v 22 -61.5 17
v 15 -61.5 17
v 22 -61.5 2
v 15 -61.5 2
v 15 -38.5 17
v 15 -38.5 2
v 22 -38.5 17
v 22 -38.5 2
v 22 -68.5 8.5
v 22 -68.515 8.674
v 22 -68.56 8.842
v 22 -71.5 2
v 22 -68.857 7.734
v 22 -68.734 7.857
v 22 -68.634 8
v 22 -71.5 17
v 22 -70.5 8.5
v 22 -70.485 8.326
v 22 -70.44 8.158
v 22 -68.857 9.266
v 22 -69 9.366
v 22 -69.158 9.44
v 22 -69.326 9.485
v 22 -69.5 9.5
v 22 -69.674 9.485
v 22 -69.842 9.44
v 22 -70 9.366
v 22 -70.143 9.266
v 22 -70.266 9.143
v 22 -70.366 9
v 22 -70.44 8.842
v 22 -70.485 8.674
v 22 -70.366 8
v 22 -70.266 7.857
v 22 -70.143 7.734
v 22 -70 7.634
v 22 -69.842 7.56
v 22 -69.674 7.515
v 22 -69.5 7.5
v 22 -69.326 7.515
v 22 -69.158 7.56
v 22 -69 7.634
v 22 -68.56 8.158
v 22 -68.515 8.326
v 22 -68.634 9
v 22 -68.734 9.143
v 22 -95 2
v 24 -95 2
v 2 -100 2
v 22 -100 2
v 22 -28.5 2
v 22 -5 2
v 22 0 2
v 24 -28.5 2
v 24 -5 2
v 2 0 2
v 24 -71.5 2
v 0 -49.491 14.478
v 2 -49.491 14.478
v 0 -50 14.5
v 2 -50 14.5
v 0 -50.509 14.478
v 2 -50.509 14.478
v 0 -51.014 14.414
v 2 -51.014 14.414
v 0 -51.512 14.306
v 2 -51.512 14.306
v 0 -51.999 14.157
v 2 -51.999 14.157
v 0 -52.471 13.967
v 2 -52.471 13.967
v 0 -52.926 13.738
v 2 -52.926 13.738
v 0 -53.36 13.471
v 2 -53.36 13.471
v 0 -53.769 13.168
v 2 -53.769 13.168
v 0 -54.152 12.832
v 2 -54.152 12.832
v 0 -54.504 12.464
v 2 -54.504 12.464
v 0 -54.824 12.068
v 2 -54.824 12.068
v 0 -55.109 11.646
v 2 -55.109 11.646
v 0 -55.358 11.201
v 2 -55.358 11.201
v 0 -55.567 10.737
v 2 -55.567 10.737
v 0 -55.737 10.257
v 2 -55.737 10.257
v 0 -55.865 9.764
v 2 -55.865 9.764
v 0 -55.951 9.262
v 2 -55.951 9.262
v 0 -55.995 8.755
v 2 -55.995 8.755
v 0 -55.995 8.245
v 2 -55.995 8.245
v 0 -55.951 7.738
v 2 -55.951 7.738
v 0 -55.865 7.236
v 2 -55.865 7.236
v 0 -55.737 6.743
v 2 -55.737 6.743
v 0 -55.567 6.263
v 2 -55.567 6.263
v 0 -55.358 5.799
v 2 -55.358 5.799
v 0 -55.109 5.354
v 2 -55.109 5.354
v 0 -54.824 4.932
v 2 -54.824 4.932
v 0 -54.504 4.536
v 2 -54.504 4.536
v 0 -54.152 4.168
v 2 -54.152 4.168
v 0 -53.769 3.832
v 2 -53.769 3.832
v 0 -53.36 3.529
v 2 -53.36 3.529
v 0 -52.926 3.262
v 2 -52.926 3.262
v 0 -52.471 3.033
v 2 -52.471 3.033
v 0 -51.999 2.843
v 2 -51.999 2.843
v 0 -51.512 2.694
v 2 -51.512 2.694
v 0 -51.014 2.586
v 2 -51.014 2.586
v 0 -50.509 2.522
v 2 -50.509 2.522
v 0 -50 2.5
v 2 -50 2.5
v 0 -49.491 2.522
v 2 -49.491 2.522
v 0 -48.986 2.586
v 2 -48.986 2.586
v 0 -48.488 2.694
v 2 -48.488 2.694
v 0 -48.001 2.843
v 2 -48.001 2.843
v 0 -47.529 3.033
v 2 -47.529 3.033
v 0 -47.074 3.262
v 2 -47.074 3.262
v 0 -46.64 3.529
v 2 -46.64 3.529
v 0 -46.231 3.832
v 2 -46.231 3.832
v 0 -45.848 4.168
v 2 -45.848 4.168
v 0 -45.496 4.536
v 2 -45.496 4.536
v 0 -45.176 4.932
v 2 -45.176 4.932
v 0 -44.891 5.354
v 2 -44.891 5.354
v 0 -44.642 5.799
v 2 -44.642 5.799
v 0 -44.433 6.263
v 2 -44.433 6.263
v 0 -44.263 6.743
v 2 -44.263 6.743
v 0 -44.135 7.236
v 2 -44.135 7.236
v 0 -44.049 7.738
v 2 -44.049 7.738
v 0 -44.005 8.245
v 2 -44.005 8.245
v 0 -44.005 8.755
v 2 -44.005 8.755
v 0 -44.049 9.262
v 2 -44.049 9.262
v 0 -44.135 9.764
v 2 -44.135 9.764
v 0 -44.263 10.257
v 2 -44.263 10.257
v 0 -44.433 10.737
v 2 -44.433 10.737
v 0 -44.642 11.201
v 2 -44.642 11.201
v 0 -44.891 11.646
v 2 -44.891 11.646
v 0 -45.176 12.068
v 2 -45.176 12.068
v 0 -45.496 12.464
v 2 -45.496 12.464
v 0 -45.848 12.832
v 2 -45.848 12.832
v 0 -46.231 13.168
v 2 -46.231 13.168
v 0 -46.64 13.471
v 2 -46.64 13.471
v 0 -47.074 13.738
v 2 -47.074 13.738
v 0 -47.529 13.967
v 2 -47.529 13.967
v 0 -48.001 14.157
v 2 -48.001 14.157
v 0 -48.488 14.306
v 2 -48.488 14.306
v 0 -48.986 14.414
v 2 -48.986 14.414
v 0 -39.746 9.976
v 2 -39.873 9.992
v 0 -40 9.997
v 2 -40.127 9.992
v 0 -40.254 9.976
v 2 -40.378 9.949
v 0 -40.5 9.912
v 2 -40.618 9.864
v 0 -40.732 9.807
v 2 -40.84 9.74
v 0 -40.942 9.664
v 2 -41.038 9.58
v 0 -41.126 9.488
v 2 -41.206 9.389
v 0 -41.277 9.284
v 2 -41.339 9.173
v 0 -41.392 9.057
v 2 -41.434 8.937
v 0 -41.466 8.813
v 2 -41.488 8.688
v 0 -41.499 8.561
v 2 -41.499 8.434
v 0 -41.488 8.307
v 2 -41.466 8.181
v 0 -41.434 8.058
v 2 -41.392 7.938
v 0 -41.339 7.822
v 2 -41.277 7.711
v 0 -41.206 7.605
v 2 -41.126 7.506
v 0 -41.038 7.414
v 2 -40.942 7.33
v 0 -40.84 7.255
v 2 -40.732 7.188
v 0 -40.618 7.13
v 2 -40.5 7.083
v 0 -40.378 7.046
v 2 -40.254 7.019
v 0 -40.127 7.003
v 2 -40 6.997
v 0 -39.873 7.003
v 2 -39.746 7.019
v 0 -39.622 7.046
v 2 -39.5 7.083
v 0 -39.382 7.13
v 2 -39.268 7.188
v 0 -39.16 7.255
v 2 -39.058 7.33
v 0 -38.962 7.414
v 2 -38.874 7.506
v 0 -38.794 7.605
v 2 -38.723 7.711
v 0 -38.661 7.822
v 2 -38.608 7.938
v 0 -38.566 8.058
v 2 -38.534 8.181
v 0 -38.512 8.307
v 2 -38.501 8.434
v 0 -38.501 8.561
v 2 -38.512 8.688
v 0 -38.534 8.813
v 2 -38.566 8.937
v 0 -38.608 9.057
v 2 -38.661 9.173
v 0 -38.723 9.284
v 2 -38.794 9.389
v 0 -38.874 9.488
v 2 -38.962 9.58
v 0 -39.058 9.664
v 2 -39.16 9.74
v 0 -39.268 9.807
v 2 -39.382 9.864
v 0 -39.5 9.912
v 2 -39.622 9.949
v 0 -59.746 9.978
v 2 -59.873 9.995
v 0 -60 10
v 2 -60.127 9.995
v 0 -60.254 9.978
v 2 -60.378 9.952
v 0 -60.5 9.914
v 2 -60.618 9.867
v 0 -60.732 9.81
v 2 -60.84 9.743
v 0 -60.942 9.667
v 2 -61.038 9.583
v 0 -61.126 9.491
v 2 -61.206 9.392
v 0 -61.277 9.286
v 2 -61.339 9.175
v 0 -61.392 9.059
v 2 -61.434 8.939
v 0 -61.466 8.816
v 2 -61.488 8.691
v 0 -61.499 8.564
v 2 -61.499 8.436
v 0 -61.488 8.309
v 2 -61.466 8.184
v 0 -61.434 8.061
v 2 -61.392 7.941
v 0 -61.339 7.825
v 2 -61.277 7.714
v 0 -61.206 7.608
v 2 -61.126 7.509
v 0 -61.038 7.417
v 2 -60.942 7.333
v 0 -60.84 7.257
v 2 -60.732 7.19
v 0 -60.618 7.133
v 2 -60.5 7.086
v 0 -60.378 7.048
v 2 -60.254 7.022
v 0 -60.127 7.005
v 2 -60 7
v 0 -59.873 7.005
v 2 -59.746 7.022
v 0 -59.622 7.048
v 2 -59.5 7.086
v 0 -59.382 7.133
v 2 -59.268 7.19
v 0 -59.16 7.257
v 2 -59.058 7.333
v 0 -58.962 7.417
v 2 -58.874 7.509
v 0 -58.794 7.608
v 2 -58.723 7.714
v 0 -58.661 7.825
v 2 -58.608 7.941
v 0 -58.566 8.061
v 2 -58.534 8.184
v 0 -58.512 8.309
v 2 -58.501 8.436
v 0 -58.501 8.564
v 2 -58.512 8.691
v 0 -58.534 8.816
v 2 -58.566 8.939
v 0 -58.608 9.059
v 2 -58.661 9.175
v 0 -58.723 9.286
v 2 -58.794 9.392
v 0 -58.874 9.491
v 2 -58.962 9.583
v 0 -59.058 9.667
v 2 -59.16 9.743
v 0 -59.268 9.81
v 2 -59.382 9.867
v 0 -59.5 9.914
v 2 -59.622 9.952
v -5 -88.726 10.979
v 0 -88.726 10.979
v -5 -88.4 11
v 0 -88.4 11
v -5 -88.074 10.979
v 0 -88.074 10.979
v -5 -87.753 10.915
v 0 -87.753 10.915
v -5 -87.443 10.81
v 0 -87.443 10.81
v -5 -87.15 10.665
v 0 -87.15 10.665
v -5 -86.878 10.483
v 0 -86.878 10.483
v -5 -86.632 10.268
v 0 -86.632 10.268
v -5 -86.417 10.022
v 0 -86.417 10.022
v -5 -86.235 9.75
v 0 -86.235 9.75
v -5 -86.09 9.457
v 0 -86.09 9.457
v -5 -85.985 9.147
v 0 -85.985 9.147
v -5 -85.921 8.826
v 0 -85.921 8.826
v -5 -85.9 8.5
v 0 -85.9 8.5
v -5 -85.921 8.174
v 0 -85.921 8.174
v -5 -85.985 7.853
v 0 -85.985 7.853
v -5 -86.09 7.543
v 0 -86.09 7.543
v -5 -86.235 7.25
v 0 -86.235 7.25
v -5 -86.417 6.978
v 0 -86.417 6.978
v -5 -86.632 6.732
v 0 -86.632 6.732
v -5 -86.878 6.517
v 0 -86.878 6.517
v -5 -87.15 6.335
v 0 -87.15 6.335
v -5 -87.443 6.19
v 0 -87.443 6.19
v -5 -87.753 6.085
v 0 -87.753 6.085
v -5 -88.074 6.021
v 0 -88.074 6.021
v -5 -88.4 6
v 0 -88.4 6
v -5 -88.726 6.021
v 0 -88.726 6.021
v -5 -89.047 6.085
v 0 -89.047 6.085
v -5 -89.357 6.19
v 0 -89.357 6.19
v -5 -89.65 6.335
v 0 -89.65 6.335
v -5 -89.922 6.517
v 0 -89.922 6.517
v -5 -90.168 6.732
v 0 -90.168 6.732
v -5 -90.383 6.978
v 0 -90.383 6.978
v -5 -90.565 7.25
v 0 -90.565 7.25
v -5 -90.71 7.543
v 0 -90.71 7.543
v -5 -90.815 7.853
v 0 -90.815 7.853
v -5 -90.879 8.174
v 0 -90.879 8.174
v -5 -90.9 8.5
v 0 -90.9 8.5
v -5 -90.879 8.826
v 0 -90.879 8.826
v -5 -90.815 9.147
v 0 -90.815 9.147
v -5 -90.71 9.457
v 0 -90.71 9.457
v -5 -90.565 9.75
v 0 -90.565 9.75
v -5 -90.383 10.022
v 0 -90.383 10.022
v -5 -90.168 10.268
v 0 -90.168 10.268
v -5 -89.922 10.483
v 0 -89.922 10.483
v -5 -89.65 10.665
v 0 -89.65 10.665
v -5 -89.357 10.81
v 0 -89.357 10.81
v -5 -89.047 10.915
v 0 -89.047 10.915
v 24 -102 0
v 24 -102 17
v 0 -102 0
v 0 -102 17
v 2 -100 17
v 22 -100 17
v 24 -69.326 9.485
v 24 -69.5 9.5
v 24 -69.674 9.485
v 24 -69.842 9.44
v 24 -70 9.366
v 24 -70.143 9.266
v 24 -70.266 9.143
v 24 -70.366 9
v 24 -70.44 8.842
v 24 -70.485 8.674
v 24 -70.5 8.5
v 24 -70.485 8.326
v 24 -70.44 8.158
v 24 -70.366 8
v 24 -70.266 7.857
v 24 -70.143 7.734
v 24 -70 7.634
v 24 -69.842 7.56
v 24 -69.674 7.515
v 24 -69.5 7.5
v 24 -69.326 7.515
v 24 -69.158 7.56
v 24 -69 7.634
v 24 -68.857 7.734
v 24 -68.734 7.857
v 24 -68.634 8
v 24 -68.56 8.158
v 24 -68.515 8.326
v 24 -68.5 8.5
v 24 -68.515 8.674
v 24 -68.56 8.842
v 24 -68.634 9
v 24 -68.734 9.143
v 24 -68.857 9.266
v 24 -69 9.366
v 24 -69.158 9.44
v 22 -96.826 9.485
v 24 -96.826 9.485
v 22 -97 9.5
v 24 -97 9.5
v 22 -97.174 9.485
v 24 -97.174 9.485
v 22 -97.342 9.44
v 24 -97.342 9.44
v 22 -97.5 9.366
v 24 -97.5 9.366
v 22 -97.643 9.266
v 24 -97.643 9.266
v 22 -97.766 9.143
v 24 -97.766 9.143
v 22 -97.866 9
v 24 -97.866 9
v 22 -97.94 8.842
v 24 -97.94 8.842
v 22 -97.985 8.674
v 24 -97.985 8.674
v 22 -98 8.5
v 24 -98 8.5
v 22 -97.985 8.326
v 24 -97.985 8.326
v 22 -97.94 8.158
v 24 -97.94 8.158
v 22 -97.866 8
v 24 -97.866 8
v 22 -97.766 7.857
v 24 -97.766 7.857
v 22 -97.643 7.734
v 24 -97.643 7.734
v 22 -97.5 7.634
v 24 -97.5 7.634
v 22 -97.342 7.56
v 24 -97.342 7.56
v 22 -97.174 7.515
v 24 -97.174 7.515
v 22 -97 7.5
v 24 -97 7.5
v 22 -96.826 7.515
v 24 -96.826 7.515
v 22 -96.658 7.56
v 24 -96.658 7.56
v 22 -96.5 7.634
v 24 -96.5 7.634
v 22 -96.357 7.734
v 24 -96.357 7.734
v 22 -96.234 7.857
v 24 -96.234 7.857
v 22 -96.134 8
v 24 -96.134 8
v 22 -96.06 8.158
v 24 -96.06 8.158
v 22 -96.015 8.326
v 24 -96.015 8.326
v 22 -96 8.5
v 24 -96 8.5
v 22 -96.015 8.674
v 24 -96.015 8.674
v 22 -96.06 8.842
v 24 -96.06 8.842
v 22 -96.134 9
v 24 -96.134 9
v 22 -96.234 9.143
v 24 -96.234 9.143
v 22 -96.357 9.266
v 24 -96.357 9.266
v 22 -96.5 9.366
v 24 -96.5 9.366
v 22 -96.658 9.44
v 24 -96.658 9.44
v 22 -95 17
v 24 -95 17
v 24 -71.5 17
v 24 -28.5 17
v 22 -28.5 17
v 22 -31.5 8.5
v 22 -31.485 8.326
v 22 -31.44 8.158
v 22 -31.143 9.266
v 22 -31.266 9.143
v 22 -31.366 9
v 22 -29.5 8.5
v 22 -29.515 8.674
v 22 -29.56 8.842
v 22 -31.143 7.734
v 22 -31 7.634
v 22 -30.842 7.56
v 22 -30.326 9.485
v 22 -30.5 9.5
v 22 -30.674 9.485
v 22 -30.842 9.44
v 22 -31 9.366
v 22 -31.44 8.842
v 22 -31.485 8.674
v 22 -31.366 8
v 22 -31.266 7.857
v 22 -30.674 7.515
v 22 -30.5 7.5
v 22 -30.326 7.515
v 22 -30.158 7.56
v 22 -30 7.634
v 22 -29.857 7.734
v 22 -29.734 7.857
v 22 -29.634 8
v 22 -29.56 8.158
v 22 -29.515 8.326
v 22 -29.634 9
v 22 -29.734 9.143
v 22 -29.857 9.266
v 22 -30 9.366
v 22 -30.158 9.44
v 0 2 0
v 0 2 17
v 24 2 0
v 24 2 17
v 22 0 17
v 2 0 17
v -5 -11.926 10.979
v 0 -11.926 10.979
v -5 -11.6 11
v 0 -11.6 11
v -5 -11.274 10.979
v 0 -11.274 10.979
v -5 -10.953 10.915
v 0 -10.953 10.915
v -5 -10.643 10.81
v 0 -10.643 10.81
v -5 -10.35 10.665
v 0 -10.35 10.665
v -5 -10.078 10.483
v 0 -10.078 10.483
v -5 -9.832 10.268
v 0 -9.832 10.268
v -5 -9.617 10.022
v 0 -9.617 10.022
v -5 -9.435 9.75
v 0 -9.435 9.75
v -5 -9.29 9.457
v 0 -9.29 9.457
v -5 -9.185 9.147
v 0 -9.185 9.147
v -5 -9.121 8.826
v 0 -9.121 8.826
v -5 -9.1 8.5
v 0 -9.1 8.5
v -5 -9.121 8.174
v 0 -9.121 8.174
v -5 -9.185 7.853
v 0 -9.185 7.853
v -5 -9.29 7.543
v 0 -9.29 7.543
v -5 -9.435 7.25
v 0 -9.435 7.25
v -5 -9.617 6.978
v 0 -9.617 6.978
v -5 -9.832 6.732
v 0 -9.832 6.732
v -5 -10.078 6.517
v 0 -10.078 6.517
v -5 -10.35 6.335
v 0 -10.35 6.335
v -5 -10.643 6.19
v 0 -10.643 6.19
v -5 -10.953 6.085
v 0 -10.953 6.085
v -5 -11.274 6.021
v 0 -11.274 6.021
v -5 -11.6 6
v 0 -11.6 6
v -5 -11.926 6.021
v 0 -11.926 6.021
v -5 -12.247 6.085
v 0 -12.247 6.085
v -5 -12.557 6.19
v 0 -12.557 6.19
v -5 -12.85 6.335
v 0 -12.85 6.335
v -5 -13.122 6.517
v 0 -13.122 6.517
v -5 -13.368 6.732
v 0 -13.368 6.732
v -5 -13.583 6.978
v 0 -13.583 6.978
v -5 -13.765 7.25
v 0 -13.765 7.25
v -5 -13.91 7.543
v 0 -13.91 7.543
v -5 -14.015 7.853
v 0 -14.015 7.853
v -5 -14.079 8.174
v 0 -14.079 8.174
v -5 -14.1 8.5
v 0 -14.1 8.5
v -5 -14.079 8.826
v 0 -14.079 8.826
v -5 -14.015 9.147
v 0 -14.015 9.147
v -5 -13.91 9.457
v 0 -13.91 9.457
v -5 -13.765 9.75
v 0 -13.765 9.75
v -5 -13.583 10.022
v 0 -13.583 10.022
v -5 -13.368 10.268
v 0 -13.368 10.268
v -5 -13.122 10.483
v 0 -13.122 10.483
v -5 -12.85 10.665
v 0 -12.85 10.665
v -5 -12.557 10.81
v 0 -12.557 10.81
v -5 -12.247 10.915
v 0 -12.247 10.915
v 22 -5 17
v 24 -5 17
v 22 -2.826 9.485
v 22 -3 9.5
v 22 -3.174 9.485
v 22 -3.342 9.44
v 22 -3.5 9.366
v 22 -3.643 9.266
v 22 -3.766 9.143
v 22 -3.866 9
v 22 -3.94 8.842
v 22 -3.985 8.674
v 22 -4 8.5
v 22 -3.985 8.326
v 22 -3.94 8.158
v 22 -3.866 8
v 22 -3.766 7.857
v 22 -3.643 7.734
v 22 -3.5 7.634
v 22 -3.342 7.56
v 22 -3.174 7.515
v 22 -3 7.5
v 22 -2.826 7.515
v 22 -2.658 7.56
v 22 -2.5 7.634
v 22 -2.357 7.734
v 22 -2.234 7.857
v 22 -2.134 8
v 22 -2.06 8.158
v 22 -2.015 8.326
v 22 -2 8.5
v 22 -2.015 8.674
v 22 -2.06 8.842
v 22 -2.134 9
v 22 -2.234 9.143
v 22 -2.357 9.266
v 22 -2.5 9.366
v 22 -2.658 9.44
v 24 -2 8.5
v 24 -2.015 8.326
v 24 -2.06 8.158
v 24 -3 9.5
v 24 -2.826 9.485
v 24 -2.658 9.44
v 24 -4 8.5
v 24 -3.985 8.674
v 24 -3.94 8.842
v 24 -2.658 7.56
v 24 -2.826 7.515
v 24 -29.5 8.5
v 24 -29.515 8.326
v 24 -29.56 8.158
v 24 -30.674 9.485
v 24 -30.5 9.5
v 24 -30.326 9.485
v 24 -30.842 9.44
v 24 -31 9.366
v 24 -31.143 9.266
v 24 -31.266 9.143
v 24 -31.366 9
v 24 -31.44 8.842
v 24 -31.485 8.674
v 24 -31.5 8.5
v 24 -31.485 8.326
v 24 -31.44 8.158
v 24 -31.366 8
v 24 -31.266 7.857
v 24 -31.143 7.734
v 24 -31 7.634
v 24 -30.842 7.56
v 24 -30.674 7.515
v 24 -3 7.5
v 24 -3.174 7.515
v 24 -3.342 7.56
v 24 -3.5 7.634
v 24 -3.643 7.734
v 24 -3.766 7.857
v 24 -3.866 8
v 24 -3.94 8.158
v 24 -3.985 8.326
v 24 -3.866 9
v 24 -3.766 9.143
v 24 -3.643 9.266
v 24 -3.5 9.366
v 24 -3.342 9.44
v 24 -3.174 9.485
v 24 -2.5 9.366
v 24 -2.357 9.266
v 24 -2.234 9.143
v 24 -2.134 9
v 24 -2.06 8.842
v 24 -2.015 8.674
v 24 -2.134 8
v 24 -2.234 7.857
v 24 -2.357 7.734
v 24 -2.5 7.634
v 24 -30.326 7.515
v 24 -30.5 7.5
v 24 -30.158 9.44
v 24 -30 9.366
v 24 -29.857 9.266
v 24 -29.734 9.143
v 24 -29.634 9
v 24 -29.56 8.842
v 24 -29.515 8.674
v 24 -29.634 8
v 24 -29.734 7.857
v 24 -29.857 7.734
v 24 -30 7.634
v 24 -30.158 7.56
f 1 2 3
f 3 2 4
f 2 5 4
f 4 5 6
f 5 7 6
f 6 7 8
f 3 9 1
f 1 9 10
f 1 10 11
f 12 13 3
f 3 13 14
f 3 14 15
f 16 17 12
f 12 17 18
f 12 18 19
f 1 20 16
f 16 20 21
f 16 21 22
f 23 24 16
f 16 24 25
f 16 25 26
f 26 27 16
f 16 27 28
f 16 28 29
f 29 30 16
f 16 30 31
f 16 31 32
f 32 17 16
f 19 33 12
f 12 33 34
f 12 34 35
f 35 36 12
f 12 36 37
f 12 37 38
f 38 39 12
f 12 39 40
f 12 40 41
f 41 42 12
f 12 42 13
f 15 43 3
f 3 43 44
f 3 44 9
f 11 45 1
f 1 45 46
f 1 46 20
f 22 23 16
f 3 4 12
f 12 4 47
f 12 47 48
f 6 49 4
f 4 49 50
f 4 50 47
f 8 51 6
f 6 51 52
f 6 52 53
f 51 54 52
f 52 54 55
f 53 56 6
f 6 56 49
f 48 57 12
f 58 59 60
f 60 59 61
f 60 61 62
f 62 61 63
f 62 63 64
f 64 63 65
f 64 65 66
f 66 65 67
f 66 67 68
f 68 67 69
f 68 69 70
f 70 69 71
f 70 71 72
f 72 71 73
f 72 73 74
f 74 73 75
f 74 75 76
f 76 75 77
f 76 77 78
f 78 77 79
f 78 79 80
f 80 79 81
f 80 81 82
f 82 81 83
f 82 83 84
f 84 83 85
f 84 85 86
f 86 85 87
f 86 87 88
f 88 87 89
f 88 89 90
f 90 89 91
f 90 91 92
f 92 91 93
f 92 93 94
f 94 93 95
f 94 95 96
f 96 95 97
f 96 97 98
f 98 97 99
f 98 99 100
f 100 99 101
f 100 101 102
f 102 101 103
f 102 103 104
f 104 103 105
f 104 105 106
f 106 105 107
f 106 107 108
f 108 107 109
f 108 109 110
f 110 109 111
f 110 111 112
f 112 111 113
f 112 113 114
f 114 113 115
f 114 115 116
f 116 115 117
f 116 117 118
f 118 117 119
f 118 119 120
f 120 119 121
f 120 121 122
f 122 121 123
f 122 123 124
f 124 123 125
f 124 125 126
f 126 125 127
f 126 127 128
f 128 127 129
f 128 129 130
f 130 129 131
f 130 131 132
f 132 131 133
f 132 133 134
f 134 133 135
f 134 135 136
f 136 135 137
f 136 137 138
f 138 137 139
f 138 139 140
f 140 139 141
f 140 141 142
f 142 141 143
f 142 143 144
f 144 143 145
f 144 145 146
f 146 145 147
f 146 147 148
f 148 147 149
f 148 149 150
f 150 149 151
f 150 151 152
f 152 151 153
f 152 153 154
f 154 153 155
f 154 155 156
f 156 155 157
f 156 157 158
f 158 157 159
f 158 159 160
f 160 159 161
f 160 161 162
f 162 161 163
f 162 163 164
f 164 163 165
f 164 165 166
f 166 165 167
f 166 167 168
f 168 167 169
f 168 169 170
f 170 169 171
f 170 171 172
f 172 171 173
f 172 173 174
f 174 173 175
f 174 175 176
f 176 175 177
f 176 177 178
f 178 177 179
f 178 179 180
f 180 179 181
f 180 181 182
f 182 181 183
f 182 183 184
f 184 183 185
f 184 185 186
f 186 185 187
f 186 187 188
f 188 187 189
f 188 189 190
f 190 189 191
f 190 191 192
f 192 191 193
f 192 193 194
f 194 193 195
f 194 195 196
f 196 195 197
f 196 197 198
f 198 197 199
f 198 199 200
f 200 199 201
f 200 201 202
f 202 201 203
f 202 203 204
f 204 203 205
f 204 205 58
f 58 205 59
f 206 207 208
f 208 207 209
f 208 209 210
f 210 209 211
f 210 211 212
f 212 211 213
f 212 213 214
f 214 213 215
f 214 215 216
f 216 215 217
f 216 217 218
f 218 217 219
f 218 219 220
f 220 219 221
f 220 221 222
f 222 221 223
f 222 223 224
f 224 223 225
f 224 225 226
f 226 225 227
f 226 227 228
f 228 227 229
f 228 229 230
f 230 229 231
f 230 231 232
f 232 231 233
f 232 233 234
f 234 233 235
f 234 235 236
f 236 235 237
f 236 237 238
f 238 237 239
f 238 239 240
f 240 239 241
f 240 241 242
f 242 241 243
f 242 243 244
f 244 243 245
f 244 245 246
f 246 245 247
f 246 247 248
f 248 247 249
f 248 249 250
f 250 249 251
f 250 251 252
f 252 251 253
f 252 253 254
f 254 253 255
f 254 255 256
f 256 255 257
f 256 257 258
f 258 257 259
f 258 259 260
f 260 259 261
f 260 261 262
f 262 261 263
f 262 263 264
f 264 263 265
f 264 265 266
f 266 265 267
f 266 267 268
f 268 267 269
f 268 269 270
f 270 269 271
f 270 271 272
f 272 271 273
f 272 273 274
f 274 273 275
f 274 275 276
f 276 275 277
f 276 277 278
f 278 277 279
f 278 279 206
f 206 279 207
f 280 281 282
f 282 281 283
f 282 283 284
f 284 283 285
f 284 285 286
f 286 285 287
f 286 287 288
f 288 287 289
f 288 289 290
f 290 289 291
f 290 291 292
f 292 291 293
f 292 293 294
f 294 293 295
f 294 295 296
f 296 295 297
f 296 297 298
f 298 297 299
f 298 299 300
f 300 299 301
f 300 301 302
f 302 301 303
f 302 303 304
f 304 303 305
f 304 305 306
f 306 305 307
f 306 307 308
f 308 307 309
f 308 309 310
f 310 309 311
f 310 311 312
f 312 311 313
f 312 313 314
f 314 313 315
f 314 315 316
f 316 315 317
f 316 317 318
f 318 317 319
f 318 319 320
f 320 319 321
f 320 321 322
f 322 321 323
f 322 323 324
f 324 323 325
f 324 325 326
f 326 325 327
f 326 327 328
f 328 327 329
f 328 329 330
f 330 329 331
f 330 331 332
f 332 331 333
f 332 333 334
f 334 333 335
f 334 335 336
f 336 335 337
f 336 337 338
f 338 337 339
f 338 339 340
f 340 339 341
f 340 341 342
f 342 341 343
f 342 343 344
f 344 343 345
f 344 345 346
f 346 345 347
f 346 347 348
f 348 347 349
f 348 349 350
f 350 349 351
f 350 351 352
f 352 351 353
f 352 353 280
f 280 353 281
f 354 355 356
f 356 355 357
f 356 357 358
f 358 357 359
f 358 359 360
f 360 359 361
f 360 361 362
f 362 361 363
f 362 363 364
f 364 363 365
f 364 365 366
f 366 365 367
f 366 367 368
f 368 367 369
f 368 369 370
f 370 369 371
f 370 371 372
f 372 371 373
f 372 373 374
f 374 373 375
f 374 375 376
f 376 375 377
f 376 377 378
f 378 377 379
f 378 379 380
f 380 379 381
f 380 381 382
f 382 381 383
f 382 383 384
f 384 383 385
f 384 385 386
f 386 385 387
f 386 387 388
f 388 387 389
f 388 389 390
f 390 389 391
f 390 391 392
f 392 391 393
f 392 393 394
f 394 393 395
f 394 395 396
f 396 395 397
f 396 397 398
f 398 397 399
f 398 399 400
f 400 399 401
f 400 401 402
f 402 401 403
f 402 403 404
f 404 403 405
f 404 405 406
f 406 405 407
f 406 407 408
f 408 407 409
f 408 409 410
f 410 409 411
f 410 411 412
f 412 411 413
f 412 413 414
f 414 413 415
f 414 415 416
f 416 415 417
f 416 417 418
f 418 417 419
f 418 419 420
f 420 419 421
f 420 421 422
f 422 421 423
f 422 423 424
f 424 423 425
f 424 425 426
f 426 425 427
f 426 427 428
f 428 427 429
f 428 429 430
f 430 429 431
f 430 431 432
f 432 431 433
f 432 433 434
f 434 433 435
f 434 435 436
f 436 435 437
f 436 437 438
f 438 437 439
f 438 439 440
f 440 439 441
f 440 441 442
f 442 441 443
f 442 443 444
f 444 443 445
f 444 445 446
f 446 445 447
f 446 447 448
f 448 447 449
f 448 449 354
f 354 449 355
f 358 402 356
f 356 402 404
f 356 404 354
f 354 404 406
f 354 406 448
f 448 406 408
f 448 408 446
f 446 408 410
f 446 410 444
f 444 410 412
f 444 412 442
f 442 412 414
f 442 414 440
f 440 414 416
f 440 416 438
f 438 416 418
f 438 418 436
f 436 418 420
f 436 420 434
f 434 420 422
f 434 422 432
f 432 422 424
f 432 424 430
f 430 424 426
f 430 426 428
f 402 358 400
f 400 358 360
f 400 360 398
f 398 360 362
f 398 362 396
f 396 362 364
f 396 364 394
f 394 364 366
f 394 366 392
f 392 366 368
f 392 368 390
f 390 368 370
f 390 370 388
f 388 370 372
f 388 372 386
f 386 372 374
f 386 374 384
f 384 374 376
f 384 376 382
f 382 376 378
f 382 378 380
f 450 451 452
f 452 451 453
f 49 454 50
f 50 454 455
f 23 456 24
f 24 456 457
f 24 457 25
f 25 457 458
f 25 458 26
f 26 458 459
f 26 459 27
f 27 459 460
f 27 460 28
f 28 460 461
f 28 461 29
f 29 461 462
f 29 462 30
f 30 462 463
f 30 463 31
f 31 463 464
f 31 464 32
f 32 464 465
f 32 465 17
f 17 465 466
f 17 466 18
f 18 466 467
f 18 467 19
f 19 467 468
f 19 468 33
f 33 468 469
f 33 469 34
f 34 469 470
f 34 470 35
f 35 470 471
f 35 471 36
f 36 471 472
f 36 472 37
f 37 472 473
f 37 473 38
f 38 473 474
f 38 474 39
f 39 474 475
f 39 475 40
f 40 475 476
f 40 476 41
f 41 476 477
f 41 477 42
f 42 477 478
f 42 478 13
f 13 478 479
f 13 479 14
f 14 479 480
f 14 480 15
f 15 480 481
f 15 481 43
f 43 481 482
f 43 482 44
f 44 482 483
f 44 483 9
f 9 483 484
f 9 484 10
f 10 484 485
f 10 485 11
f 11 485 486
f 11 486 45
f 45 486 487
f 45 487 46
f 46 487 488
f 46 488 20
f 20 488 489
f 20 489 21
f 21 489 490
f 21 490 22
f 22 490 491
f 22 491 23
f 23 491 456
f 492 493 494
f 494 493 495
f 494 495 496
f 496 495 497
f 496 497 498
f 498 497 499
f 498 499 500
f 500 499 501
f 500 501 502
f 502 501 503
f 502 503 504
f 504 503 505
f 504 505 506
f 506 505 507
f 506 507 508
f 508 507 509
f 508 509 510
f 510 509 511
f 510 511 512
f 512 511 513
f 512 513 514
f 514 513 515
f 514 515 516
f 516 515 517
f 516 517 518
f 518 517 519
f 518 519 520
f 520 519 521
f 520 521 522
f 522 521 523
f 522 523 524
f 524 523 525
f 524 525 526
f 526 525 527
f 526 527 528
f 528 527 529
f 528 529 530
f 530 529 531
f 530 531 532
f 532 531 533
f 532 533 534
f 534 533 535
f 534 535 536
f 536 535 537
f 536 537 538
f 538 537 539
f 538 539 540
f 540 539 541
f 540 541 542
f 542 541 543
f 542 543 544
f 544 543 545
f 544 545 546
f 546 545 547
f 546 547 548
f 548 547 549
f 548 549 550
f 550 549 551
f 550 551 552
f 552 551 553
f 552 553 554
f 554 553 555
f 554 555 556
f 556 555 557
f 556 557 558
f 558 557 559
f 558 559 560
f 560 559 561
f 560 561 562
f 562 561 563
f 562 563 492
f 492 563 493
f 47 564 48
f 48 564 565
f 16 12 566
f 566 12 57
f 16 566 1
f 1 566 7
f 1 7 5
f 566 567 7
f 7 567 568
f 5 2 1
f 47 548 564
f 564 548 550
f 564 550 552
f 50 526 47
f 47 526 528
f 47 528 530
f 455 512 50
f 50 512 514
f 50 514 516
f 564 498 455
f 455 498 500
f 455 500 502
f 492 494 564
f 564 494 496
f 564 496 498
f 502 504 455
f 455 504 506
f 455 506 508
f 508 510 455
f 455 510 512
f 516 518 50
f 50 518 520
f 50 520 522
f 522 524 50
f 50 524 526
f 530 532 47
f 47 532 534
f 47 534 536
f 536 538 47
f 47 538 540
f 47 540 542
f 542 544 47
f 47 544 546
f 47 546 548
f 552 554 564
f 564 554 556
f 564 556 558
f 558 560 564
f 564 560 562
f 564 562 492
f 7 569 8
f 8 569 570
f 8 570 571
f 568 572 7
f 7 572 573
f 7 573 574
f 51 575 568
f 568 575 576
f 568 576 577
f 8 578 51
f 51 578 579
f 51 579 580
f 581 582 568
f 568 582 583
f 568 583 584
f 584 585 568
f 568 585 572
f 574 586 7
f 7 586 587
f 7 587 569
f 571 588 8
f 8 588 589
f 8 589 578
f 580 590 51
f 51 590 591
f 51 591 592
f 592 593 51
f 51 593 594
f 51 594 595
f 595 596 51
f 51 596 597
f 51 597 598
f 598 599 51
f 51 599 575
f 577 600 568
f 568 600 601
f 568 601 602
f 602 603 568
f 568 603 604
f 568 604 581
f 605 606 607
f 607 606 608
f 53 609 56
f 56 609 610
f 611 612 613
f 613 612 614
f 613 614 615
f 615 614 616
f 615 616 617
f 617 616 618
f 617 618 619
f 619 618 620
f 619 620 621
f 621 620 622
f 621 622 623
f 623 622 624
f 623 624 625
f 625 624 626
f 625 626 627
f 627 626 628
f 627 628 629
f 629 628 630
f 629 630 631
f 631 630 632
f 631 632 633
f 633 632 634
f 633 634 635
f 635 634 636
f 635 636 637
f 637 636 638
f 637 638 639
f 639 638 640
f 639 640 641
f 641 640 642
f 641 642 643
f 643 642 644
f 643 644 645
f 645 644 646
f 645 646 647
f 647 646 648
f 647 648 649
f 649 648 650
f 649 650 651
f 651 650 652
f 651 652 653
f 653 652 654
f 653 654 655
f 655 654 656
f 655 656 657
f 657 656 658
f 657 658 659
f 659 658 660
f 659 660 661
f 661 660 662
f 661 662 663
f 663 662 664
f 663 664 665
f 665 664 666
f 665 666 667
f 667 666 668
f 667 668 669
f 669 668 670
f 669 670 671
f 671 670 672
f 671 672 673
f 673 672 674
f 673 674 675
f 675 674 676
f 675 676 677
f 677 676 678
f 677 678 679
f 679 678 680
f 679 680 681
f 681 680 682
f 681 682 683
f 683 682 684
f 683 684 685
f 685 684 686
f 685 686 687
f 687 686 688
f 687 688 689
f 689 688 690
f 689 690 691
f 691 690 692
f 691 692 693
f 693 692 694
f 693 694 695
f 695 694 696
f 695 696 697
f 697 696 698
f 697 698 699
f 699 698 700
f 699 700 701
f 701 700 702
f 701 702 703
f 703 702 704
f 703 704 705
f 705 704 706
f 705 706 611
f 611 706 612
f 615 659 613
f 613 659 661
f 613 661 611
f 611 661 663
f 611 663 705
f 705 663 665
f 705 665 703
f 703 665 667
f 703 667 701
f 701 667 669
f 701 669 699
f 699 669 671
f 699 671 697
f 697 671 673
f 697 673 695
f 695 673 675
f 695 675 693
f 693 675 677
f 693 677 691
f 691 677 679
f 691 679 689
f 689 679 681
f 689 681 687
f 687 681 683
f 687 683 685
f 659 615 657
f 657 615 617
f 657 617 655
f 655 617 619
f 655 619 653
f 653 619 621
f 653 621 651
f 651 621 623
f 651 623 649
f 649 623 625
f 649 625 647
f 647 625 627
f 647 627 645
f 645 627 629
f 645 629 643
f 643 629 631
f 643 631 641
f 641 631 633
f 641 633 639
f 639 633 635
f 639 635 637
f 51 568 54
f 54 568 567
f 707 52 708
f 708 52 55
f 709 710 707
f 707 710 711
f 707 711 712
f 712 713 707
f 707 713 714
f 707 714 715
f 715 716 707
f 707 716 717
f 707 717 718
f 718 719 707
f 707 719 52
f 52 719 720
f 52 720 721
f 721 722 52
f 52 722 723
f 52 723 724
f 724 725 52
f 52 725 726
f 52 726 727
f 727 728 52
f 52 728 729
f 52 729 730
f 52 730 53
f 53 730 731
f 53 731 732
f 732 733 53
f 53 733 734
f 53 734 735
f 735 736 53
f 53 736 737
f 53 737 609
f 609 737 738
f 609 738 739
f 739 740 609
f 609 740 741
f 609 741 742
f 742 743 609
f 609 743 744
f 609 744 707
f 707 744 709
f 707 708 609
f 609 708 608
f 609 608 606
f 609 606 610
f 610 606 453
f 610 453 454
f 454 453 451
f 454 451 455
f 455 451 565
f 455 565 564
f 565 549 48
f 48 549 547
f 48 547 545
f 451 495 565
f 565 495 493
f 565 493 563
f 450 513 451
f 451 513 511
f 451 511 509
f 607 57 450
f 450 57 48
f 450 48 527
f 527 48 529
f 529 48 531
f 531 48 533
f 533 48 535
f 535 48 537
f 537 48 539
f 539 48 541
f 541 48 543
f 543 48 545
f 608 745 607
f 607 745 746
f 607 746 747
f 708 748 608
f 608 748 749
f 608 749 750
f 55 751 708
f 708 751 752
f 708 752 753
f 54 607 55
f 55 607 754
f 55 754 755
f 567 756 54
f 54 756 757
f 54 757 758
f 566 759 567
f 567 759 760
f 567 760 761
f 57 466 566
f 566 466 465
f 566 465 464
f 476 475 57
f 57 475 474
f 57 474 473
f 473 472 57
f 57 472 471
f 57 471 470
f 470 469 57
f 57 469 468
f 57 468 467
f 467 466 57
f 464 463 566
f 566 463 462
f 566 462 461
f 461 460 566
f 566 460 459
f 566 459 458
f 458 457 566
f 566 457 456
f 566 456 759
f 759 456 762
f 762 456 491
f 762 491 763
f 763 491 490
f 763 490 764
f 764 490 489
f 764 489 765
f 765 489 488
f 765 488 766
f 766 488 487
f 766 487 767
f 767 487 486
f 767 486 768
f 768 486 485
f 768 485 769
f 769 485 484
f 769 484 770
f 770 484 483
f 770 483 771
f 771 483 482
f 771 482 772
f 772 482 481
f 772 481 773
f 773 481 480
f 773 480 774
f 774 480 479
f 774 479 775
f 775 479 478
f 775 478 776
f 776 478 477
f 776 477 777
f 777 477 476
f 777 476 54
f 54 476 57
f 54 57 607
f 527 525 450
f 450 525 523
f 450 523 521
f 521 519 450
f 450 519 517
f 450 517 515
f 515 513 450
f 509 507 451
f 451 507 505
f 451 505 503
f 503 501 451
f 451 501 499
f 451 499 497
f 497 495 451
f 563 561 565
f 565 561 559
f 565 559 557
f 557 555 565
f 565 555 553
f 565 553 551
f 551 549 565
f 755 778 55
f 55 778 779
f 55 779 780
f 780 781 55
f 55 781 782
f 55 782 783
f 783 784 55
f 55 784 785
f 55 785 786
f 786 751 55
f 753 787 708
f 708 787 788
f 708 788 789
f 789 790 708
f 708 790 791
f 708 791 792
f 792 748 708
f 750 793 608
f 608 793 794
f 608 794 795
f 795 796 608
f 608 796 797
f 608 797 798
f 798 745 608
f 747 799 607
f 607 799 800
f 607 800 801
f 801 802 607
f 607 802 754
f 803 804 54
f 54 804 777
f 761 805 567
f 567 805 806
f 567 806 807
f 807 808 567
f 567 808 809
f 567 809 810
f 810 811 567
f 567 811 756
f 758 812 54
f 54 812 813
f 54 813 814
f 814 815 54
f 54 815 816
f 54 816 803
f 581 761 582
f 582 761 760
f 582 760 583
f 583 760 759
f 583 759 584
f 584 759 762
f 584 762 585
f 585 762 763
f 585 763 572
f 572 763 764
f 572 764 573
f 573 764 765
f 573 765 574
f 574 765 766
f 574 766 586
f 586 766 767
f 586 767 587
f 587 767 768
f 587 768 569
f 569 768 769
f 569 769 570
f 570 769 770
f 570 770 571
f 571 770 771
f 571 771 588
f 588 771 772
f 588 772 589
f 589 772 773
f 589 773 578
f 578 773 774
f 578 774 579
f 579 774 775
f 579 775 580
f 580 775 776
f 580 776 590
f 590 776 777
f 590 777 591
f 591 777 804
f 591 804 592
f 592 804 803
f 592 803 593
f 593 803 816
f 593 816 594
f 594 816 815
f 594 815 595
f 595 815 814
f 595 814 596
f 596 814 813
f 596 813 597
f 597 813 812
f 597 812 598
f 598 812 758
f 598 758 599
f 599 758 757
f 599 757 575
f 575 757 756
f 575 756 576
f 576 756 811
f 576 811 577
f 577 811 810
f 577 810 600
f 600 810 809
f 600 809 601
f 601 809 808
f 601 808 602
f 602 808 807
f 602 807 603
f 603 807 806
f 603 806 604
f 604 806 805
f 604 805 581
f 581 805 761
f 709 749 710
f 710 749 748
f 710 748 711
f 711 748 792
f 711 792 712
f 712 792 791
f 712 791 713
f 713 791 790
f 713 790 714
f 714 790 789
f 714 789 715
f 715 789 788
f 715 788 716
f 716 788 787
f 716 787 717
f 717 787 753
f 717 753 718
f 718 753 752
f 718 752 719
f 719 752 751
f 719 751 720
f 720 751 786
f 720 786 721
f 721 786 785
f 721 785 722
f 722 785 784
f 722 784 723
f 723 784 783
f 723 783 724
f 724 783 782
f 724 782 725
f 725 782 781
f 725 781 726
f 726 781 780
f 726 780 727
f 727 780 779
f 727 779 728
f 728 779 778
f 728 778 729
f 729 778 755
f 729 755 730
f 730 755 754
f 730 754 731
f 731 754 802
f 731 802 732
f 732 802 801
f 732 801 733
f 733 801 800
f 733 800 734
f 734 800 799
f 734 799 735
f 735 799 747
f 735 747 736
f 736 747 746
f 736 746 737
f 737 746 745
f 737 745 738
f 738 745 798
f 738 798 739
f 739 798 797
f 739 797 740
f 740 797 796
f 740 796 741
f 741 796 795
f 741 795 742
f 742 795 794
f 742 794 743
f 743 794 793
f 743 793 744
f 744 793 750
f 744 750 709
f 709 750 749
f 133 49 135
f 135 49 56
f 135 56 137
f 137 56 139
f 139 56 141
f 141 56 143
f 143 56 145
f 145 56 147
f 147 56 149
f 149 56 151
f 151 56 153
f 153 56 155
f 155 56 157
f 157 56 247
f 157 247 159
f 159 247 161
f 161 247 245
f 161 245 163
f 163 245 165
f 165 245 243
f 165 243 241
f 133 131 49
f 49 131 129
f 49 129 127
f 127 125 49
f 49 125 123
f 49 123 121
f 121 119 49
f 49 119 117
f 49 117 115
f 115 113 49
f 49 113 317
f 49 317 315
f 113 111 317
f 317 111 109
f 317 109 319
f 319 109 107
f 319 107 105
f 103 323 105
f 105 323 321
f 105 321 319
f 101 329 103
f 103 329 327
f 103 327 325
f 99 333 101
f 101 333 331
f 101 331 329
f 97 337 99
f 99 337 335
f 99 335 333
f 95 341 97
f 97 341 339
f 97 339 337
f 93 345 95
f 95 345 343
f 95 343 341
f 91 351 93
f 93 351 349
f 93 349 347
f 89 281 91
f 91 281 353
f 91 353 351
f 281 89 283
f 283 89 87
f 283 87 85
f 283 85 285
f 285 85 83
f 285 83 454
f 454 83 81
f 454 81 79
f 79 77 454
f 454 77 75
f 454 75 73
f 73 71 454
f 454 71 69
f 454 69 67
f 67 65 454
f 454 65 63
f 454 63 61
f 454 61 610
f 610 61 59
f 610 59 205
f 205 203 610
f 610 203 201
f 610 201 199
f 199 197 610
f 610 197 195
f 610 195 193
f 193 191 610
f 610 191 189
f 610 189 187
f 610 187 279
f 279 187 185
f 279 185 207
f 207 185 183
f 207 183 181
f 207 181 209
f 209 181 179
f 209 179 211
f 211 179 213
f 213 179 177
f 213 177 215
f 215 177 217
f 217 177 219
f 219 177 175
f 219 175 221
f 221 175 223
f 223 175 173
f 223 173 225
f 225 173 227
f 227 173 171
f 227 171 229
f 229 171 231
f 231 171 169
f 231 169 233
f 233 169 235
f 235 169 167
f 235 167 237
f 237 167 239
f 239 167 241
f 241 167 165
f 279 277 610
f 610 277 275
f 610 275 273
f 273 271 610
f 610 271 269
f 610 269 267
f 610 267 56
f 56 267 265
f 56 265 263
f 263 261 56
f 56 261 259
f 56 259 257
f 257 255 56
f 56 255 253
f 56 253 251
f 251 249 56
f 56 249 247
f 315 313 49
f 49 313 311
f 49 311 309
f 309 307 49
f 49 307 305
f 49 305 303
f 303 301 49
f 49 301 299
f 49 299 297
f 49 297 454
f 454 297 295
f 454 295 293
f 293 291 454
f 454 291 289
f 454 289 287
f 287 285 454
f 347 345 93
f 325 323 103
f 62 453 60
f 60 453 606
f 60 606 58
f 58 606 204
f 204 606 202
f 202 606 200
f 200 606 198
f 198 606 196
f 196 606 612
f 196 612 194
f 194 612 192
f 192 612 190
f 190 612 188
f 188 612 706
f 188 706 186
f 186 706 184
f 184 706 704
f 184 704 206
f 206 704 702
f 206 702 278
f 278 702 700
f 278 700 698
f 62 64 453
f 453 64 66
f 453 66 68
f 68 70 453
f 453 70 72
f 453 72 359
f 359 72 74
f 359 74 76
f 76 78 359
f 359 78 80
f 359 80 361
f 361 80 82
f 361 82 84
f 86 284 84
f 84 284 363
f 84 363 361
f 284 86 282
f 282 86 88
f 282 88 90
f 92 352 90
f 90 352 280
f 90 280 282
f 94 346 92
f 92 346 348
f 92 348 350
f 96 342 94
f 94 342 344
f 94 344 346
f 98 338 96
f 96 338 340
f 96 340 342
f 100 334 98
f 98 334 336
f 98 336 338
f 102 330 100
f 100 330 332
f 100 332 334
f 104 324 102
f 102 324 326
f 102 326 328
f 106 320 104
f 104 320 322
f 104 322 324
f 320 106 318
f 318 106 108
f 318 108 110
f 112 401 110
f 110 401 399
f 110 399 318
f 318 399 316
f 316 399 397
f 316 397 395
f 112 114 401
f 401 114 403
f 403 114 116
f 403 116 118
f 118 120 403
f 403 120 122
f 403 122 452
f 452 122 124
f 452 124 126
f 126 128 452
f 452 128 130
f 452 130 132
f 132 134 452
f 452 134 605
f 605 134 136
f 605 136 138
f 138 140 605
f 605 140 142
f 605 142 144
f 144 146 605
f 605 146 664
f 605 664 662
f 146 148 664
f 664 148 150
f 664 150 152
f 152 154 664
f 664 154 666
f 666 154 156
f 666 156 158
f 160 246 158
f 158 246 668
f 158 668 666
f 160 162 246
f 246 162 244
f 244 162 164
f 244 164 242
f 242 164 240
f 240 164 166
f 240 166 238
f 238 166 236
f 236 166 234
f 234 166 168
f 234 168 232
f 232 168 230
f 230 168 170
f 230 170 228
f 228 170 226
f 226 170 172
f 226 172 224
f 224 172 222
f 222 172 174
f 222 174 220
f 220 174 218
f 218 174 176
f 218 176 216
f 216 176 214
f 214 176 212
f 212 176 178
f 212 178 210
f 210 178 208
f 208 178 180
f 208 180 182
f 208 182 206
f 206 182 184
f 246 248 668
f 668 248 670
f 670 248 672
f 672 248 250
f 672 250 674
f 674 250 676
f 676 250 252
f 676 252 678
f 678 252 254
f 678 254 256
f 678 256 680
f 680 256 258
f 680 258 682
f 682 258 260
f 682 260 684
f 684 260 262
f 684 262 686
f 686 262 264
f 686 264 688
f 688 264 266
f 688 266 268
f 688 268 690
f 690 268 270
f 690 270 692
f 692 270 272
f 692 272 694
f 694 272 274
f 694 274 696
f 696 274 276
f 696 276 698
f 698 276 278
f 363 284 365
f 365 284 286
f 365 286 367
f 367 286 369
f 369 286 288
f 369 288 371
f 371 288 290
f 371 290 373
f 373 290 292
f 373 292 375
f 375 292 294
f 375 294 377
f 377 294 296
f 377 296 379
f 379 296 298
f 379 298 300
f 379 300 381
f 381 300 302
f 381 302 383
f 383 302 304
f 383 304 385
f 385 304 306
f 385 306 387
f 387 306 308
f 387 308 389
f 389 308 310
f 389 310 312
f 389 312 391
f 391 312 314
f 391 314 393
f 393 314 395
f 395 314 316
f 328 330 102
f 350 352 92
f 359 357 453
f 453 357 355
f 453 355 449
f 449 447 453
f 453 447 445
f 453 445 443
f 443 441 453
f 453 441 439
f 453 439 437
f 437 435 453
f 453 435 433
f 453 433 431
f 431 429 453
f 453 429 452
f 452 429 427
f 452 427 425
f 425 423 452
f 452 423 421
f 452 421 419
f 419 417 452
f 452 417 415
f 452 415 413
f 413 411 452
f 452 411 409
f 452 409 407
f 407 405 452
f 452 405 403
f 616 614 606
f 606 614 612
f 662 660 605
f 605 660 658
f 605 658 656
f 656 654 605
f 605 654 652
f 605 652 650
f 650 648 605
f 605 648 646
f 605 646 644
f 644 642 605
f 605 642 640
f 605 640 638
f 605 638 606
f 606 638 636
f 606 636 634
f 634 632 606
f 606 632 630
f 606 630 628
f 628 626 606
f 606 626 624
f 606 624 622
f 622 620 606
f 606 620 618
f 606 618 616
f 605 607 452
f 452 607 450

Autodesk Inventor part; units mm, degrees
ref_plane "YZ Plane" through (0, 0, 0) normal (1, 0, 0) x (0, 1, 0)
ref_plane "XZ Plane" through (0, 0, 0) normal (0, 1, 0) x (-1, 0, 0)
ref_plane "XY Plane" through (0, 0, 0) normal (0, 0, 1) x (1, 0, 0)
sketch "Sketch1" plane through (0, 0, 0) normal (0, 0, 1) x (1, 0, 0)
  line L0 (0, 0) -> (24, 0)
  line L1 (24, 0) -> (24, -100)
  line L2 (24, -100) -> (0, -100)
  line L3 (0, -100) -> (0, 0)
  dimension "d0" = 24
  dimension "d1" = 100
extrude "Extrusion1" add sketch "Sketch1" along normal blind 2
sketch "Sketch2" plane through (0, 0, 2) normal (0, 0, 1) x (1, 0, 0)
  line L0 (0, -100) -> (24, -100) projected
  line L1 (0, 0) -> (2, 0)
  line L2 (2, 0) -> (2, -100)
  line L3 (2, -100) -> (0, -100)
  line L4 (0, -100) -> (0, 0)
  line L5 (24, -100) -> (24, 0) projected
  line L6 (24, 0) -> (22, 0)
  line L7 (22, 0) -> (22, -100)
  line L8 (22, -100) -> (24, -100)
  line L9 (24, -100) -> (24, 0)
  dimension "d4" = 2
  dimension "d5" = 2
extrude "Extrusion2" add sketch "Sketch2" along normal blind 15
sketch "Sketch3" plane through (24, -100, 0) normal (1, 0, 0) x (0, 0, -1)
  circle A0 centre (-8.5, 97) radius 1
  circle A1 centre (-8.5, 69.5) radius 1
  line L0 (-17, 0) -> (-17, 100) projected
  line L1 (0, 100) -> (-17, 100) projected
  dimension "d8" = 2
  dimension "d9" = 2
  dimension "d10" = 8.5
  dimension "d11" = 8.5
  dimension "d12" = 27.5
  dimension "d13" = 3
extrude "Extrusion3" cut sketch "Sketch3" against normal up to surface (2 mm away)
sketch "Sketch4" plane through (24, -100, 0) normal (1, 0, 0) x (0, 0, -1)
  line L0 (-17, 100) -> (-17, 0) projected
  line L1 (-2, 95) -> (-2, 71.5)
  circle A0 centre (-8.5, 97) radius 1 projected
  circle A1 centre (-8.5, 69.5) radius 1 projected
  line L2 (0, 0) -> (0, 100) projected
  line L3 (-2, 95) -> (-17, 95)
  line L4 (-17, 95) -> (-17, 71.5)
  line L5 (-17, 71.5) -> (-2, 71.5)
  point P0 (-17, 95)
  dimension "d24" = 23.5
  dimension "d104" = 15
  dimension "d105" = 2
  dimension "d106" = 2
extrude "Extrusion4" cut sketch "Sketch4" against normal up to surface (2 mm away) contours L3 L1 L5 L0
sketch "Sketch5" plane through (0, -100, 0) normal (-1, 0, 0) x (0, 0, 1)
  circle A0 centre (8.5, 88.4) radius 2.5
  circle A1 centre (8.5, 97) radius 1 projected
  point P0 (0, 100)
  dimension "d29" = 5
  dimension "d32" = 8.6
  dimension "d33" = 0
extrude "Extrusion5" add sketch "Sketch5" along normal blind 5 contours A0
sketch "Sketch15" plane through (0, 0, 0) normal (0, 1, 0) x (1, 0, 0)
  line L0 (22, -17) -> (24, -17) projected
  line L1 (0, 0) -> (0, -17) projected
  line L2 (24, -17) -> (0, -17)
  line L3 (0, -17) -> (0, 0)
  line L4 (0, 0) -> (24, 0)
  line L5 (24, 0) -> (24, -17)
extrude "Extrusion12" add sketch "Sketch15" along normal blind 2
sketch "Sketch16" plane through (24, -100, 17) normal (1, 0, 0) x (0, 0, -1)
  line L0 (0, 100) -> (0, 0) projected
  line L1 (0, 5) -> (15, 5)
  line L2 (15, 5) -> (15, 28.5)
  line L3 (15, 28.5) -> (0, 28.5)
  line L4 (0, 28.5) -> (0, 5)
  line L5 (17, 0) -> (0, 0) projected
  circle A0 centre (8.5, 3) radius 1
  circle A1 centre (8.5, 30.5) radius 1
  point P0 (17, 100)
  point P1 (0, 71.5)
  point P2 (7.5, 5)
  point P3 (7.5, 28.5)
  point P4 (0, 28.5)
  dimension "d84" = 15
  dimension "d85" = 23.5
  dimension "d86" = 5
  dimension "d87" = 2
  dimension "d88" = 2
  dimension "d89" = 8.5
  dimension "d90" = 8.5
  dimension "d91" = 2
  dimension "d92" = 2
extrude "Extrusion13" cut sketch "Sketch16" against normal up to surface (2 mm away)
sketch "Sketch17" plane through (0, -100, 0) normal (0, -1, 0) x (1, 0, 0)
  line L0 (24, 4) -> (24, 17) projected
  line L1 (24, 17) -> (0, 17)
  line L2 (0, 17) -> (0, 0)
  line L3 (0, 0) -> (24, 0)
  line L4 (24, 0) -> (24, 17)
  point P0 (24, 2)
extrude "Extrusion14" add sketch "Sketch17" along normal blind 2
sketch "Sketch18" plane through (0, 2, 0) normal (-1, 0, 0) x (0, 0, 1)
  circle A0 centre (8.5, -90.4) radius 2.5
  line L0 (17, -104) -> (0, -104) projected
  line L1 (17, -104) -> (17, 0) projected
  point P0 (0, -2)
  dimension "d97" = 5
  dimension "d98" = 13.6
  dimension "d99" = 8.5
extrude "Extrusion15" add sketch "Sketch18" along normal blind 5
ref_plane "Plano de trabalho3" through (2, -44.5, 2) normal (1, 0, 0) x (0, 0, -1)
sketch "Sketch21" plane through (2, -44.5, 2) normal (1, 0, 0) x (0, 0, -1)
  circle A0 centre (-6.5, -5.5) radius 6
  line L0 (0, 9) -> (-15, 9) projected
  line L1 (-15, -35.5) -> (-15, 44.5) projected
  circle A1 centre (-6.4973, 4.5) radius 1.5
  circle A2 centre (-6.5, -15.5) radius 1.5
  line L2 (0, 44.5) -> (-15, 44.5) projected
  point P0 (2, 44.5)
  point P1 (-15, 0)
  point P2 (-15, 46.5)
  dimension "d122" = 12
  dimension "d124" = 8.5
  dimension "d129" = 3
  dimension "d130" = 3
  dimension "d131" = 10
  dimension "d132" = 10
  dimension "d134" = 50
extrude "Extrusion18" cut sketch "Sketch21" against normal up to surface (2 mm away)
sketch "Esboço22" plane through (0, 0, 2) normal (0, 0, 1) x (1, 0, 0)
  line L0 (22, -71.5) -> (22, -28.5) projected
  line L1 (22, -38.5) -> (15, -38.5)
  line L2 (15, -38.5) -> (15, -61.5)
  line L3 (15, -61.5) -> (22, -61.5)
  line L4 (22, -61.5) -> (22, -38.5)
  line L5 (24, -28.5) -> (22, -28.5) projected
  line L6 (22, -71.5) -> (24, -71.5) projected
  point P0 (0, 0)
  dimension "d142" = 7
  dimension "d143" = 10
  dimension "d144" = 10
extrude "Extrusão19" add sketch "Esboço22" along normal up to surface (15 mm away)
equation "\"d11\" = d10"
equation "\"d90\" = d89"
properties part number "corpo"
